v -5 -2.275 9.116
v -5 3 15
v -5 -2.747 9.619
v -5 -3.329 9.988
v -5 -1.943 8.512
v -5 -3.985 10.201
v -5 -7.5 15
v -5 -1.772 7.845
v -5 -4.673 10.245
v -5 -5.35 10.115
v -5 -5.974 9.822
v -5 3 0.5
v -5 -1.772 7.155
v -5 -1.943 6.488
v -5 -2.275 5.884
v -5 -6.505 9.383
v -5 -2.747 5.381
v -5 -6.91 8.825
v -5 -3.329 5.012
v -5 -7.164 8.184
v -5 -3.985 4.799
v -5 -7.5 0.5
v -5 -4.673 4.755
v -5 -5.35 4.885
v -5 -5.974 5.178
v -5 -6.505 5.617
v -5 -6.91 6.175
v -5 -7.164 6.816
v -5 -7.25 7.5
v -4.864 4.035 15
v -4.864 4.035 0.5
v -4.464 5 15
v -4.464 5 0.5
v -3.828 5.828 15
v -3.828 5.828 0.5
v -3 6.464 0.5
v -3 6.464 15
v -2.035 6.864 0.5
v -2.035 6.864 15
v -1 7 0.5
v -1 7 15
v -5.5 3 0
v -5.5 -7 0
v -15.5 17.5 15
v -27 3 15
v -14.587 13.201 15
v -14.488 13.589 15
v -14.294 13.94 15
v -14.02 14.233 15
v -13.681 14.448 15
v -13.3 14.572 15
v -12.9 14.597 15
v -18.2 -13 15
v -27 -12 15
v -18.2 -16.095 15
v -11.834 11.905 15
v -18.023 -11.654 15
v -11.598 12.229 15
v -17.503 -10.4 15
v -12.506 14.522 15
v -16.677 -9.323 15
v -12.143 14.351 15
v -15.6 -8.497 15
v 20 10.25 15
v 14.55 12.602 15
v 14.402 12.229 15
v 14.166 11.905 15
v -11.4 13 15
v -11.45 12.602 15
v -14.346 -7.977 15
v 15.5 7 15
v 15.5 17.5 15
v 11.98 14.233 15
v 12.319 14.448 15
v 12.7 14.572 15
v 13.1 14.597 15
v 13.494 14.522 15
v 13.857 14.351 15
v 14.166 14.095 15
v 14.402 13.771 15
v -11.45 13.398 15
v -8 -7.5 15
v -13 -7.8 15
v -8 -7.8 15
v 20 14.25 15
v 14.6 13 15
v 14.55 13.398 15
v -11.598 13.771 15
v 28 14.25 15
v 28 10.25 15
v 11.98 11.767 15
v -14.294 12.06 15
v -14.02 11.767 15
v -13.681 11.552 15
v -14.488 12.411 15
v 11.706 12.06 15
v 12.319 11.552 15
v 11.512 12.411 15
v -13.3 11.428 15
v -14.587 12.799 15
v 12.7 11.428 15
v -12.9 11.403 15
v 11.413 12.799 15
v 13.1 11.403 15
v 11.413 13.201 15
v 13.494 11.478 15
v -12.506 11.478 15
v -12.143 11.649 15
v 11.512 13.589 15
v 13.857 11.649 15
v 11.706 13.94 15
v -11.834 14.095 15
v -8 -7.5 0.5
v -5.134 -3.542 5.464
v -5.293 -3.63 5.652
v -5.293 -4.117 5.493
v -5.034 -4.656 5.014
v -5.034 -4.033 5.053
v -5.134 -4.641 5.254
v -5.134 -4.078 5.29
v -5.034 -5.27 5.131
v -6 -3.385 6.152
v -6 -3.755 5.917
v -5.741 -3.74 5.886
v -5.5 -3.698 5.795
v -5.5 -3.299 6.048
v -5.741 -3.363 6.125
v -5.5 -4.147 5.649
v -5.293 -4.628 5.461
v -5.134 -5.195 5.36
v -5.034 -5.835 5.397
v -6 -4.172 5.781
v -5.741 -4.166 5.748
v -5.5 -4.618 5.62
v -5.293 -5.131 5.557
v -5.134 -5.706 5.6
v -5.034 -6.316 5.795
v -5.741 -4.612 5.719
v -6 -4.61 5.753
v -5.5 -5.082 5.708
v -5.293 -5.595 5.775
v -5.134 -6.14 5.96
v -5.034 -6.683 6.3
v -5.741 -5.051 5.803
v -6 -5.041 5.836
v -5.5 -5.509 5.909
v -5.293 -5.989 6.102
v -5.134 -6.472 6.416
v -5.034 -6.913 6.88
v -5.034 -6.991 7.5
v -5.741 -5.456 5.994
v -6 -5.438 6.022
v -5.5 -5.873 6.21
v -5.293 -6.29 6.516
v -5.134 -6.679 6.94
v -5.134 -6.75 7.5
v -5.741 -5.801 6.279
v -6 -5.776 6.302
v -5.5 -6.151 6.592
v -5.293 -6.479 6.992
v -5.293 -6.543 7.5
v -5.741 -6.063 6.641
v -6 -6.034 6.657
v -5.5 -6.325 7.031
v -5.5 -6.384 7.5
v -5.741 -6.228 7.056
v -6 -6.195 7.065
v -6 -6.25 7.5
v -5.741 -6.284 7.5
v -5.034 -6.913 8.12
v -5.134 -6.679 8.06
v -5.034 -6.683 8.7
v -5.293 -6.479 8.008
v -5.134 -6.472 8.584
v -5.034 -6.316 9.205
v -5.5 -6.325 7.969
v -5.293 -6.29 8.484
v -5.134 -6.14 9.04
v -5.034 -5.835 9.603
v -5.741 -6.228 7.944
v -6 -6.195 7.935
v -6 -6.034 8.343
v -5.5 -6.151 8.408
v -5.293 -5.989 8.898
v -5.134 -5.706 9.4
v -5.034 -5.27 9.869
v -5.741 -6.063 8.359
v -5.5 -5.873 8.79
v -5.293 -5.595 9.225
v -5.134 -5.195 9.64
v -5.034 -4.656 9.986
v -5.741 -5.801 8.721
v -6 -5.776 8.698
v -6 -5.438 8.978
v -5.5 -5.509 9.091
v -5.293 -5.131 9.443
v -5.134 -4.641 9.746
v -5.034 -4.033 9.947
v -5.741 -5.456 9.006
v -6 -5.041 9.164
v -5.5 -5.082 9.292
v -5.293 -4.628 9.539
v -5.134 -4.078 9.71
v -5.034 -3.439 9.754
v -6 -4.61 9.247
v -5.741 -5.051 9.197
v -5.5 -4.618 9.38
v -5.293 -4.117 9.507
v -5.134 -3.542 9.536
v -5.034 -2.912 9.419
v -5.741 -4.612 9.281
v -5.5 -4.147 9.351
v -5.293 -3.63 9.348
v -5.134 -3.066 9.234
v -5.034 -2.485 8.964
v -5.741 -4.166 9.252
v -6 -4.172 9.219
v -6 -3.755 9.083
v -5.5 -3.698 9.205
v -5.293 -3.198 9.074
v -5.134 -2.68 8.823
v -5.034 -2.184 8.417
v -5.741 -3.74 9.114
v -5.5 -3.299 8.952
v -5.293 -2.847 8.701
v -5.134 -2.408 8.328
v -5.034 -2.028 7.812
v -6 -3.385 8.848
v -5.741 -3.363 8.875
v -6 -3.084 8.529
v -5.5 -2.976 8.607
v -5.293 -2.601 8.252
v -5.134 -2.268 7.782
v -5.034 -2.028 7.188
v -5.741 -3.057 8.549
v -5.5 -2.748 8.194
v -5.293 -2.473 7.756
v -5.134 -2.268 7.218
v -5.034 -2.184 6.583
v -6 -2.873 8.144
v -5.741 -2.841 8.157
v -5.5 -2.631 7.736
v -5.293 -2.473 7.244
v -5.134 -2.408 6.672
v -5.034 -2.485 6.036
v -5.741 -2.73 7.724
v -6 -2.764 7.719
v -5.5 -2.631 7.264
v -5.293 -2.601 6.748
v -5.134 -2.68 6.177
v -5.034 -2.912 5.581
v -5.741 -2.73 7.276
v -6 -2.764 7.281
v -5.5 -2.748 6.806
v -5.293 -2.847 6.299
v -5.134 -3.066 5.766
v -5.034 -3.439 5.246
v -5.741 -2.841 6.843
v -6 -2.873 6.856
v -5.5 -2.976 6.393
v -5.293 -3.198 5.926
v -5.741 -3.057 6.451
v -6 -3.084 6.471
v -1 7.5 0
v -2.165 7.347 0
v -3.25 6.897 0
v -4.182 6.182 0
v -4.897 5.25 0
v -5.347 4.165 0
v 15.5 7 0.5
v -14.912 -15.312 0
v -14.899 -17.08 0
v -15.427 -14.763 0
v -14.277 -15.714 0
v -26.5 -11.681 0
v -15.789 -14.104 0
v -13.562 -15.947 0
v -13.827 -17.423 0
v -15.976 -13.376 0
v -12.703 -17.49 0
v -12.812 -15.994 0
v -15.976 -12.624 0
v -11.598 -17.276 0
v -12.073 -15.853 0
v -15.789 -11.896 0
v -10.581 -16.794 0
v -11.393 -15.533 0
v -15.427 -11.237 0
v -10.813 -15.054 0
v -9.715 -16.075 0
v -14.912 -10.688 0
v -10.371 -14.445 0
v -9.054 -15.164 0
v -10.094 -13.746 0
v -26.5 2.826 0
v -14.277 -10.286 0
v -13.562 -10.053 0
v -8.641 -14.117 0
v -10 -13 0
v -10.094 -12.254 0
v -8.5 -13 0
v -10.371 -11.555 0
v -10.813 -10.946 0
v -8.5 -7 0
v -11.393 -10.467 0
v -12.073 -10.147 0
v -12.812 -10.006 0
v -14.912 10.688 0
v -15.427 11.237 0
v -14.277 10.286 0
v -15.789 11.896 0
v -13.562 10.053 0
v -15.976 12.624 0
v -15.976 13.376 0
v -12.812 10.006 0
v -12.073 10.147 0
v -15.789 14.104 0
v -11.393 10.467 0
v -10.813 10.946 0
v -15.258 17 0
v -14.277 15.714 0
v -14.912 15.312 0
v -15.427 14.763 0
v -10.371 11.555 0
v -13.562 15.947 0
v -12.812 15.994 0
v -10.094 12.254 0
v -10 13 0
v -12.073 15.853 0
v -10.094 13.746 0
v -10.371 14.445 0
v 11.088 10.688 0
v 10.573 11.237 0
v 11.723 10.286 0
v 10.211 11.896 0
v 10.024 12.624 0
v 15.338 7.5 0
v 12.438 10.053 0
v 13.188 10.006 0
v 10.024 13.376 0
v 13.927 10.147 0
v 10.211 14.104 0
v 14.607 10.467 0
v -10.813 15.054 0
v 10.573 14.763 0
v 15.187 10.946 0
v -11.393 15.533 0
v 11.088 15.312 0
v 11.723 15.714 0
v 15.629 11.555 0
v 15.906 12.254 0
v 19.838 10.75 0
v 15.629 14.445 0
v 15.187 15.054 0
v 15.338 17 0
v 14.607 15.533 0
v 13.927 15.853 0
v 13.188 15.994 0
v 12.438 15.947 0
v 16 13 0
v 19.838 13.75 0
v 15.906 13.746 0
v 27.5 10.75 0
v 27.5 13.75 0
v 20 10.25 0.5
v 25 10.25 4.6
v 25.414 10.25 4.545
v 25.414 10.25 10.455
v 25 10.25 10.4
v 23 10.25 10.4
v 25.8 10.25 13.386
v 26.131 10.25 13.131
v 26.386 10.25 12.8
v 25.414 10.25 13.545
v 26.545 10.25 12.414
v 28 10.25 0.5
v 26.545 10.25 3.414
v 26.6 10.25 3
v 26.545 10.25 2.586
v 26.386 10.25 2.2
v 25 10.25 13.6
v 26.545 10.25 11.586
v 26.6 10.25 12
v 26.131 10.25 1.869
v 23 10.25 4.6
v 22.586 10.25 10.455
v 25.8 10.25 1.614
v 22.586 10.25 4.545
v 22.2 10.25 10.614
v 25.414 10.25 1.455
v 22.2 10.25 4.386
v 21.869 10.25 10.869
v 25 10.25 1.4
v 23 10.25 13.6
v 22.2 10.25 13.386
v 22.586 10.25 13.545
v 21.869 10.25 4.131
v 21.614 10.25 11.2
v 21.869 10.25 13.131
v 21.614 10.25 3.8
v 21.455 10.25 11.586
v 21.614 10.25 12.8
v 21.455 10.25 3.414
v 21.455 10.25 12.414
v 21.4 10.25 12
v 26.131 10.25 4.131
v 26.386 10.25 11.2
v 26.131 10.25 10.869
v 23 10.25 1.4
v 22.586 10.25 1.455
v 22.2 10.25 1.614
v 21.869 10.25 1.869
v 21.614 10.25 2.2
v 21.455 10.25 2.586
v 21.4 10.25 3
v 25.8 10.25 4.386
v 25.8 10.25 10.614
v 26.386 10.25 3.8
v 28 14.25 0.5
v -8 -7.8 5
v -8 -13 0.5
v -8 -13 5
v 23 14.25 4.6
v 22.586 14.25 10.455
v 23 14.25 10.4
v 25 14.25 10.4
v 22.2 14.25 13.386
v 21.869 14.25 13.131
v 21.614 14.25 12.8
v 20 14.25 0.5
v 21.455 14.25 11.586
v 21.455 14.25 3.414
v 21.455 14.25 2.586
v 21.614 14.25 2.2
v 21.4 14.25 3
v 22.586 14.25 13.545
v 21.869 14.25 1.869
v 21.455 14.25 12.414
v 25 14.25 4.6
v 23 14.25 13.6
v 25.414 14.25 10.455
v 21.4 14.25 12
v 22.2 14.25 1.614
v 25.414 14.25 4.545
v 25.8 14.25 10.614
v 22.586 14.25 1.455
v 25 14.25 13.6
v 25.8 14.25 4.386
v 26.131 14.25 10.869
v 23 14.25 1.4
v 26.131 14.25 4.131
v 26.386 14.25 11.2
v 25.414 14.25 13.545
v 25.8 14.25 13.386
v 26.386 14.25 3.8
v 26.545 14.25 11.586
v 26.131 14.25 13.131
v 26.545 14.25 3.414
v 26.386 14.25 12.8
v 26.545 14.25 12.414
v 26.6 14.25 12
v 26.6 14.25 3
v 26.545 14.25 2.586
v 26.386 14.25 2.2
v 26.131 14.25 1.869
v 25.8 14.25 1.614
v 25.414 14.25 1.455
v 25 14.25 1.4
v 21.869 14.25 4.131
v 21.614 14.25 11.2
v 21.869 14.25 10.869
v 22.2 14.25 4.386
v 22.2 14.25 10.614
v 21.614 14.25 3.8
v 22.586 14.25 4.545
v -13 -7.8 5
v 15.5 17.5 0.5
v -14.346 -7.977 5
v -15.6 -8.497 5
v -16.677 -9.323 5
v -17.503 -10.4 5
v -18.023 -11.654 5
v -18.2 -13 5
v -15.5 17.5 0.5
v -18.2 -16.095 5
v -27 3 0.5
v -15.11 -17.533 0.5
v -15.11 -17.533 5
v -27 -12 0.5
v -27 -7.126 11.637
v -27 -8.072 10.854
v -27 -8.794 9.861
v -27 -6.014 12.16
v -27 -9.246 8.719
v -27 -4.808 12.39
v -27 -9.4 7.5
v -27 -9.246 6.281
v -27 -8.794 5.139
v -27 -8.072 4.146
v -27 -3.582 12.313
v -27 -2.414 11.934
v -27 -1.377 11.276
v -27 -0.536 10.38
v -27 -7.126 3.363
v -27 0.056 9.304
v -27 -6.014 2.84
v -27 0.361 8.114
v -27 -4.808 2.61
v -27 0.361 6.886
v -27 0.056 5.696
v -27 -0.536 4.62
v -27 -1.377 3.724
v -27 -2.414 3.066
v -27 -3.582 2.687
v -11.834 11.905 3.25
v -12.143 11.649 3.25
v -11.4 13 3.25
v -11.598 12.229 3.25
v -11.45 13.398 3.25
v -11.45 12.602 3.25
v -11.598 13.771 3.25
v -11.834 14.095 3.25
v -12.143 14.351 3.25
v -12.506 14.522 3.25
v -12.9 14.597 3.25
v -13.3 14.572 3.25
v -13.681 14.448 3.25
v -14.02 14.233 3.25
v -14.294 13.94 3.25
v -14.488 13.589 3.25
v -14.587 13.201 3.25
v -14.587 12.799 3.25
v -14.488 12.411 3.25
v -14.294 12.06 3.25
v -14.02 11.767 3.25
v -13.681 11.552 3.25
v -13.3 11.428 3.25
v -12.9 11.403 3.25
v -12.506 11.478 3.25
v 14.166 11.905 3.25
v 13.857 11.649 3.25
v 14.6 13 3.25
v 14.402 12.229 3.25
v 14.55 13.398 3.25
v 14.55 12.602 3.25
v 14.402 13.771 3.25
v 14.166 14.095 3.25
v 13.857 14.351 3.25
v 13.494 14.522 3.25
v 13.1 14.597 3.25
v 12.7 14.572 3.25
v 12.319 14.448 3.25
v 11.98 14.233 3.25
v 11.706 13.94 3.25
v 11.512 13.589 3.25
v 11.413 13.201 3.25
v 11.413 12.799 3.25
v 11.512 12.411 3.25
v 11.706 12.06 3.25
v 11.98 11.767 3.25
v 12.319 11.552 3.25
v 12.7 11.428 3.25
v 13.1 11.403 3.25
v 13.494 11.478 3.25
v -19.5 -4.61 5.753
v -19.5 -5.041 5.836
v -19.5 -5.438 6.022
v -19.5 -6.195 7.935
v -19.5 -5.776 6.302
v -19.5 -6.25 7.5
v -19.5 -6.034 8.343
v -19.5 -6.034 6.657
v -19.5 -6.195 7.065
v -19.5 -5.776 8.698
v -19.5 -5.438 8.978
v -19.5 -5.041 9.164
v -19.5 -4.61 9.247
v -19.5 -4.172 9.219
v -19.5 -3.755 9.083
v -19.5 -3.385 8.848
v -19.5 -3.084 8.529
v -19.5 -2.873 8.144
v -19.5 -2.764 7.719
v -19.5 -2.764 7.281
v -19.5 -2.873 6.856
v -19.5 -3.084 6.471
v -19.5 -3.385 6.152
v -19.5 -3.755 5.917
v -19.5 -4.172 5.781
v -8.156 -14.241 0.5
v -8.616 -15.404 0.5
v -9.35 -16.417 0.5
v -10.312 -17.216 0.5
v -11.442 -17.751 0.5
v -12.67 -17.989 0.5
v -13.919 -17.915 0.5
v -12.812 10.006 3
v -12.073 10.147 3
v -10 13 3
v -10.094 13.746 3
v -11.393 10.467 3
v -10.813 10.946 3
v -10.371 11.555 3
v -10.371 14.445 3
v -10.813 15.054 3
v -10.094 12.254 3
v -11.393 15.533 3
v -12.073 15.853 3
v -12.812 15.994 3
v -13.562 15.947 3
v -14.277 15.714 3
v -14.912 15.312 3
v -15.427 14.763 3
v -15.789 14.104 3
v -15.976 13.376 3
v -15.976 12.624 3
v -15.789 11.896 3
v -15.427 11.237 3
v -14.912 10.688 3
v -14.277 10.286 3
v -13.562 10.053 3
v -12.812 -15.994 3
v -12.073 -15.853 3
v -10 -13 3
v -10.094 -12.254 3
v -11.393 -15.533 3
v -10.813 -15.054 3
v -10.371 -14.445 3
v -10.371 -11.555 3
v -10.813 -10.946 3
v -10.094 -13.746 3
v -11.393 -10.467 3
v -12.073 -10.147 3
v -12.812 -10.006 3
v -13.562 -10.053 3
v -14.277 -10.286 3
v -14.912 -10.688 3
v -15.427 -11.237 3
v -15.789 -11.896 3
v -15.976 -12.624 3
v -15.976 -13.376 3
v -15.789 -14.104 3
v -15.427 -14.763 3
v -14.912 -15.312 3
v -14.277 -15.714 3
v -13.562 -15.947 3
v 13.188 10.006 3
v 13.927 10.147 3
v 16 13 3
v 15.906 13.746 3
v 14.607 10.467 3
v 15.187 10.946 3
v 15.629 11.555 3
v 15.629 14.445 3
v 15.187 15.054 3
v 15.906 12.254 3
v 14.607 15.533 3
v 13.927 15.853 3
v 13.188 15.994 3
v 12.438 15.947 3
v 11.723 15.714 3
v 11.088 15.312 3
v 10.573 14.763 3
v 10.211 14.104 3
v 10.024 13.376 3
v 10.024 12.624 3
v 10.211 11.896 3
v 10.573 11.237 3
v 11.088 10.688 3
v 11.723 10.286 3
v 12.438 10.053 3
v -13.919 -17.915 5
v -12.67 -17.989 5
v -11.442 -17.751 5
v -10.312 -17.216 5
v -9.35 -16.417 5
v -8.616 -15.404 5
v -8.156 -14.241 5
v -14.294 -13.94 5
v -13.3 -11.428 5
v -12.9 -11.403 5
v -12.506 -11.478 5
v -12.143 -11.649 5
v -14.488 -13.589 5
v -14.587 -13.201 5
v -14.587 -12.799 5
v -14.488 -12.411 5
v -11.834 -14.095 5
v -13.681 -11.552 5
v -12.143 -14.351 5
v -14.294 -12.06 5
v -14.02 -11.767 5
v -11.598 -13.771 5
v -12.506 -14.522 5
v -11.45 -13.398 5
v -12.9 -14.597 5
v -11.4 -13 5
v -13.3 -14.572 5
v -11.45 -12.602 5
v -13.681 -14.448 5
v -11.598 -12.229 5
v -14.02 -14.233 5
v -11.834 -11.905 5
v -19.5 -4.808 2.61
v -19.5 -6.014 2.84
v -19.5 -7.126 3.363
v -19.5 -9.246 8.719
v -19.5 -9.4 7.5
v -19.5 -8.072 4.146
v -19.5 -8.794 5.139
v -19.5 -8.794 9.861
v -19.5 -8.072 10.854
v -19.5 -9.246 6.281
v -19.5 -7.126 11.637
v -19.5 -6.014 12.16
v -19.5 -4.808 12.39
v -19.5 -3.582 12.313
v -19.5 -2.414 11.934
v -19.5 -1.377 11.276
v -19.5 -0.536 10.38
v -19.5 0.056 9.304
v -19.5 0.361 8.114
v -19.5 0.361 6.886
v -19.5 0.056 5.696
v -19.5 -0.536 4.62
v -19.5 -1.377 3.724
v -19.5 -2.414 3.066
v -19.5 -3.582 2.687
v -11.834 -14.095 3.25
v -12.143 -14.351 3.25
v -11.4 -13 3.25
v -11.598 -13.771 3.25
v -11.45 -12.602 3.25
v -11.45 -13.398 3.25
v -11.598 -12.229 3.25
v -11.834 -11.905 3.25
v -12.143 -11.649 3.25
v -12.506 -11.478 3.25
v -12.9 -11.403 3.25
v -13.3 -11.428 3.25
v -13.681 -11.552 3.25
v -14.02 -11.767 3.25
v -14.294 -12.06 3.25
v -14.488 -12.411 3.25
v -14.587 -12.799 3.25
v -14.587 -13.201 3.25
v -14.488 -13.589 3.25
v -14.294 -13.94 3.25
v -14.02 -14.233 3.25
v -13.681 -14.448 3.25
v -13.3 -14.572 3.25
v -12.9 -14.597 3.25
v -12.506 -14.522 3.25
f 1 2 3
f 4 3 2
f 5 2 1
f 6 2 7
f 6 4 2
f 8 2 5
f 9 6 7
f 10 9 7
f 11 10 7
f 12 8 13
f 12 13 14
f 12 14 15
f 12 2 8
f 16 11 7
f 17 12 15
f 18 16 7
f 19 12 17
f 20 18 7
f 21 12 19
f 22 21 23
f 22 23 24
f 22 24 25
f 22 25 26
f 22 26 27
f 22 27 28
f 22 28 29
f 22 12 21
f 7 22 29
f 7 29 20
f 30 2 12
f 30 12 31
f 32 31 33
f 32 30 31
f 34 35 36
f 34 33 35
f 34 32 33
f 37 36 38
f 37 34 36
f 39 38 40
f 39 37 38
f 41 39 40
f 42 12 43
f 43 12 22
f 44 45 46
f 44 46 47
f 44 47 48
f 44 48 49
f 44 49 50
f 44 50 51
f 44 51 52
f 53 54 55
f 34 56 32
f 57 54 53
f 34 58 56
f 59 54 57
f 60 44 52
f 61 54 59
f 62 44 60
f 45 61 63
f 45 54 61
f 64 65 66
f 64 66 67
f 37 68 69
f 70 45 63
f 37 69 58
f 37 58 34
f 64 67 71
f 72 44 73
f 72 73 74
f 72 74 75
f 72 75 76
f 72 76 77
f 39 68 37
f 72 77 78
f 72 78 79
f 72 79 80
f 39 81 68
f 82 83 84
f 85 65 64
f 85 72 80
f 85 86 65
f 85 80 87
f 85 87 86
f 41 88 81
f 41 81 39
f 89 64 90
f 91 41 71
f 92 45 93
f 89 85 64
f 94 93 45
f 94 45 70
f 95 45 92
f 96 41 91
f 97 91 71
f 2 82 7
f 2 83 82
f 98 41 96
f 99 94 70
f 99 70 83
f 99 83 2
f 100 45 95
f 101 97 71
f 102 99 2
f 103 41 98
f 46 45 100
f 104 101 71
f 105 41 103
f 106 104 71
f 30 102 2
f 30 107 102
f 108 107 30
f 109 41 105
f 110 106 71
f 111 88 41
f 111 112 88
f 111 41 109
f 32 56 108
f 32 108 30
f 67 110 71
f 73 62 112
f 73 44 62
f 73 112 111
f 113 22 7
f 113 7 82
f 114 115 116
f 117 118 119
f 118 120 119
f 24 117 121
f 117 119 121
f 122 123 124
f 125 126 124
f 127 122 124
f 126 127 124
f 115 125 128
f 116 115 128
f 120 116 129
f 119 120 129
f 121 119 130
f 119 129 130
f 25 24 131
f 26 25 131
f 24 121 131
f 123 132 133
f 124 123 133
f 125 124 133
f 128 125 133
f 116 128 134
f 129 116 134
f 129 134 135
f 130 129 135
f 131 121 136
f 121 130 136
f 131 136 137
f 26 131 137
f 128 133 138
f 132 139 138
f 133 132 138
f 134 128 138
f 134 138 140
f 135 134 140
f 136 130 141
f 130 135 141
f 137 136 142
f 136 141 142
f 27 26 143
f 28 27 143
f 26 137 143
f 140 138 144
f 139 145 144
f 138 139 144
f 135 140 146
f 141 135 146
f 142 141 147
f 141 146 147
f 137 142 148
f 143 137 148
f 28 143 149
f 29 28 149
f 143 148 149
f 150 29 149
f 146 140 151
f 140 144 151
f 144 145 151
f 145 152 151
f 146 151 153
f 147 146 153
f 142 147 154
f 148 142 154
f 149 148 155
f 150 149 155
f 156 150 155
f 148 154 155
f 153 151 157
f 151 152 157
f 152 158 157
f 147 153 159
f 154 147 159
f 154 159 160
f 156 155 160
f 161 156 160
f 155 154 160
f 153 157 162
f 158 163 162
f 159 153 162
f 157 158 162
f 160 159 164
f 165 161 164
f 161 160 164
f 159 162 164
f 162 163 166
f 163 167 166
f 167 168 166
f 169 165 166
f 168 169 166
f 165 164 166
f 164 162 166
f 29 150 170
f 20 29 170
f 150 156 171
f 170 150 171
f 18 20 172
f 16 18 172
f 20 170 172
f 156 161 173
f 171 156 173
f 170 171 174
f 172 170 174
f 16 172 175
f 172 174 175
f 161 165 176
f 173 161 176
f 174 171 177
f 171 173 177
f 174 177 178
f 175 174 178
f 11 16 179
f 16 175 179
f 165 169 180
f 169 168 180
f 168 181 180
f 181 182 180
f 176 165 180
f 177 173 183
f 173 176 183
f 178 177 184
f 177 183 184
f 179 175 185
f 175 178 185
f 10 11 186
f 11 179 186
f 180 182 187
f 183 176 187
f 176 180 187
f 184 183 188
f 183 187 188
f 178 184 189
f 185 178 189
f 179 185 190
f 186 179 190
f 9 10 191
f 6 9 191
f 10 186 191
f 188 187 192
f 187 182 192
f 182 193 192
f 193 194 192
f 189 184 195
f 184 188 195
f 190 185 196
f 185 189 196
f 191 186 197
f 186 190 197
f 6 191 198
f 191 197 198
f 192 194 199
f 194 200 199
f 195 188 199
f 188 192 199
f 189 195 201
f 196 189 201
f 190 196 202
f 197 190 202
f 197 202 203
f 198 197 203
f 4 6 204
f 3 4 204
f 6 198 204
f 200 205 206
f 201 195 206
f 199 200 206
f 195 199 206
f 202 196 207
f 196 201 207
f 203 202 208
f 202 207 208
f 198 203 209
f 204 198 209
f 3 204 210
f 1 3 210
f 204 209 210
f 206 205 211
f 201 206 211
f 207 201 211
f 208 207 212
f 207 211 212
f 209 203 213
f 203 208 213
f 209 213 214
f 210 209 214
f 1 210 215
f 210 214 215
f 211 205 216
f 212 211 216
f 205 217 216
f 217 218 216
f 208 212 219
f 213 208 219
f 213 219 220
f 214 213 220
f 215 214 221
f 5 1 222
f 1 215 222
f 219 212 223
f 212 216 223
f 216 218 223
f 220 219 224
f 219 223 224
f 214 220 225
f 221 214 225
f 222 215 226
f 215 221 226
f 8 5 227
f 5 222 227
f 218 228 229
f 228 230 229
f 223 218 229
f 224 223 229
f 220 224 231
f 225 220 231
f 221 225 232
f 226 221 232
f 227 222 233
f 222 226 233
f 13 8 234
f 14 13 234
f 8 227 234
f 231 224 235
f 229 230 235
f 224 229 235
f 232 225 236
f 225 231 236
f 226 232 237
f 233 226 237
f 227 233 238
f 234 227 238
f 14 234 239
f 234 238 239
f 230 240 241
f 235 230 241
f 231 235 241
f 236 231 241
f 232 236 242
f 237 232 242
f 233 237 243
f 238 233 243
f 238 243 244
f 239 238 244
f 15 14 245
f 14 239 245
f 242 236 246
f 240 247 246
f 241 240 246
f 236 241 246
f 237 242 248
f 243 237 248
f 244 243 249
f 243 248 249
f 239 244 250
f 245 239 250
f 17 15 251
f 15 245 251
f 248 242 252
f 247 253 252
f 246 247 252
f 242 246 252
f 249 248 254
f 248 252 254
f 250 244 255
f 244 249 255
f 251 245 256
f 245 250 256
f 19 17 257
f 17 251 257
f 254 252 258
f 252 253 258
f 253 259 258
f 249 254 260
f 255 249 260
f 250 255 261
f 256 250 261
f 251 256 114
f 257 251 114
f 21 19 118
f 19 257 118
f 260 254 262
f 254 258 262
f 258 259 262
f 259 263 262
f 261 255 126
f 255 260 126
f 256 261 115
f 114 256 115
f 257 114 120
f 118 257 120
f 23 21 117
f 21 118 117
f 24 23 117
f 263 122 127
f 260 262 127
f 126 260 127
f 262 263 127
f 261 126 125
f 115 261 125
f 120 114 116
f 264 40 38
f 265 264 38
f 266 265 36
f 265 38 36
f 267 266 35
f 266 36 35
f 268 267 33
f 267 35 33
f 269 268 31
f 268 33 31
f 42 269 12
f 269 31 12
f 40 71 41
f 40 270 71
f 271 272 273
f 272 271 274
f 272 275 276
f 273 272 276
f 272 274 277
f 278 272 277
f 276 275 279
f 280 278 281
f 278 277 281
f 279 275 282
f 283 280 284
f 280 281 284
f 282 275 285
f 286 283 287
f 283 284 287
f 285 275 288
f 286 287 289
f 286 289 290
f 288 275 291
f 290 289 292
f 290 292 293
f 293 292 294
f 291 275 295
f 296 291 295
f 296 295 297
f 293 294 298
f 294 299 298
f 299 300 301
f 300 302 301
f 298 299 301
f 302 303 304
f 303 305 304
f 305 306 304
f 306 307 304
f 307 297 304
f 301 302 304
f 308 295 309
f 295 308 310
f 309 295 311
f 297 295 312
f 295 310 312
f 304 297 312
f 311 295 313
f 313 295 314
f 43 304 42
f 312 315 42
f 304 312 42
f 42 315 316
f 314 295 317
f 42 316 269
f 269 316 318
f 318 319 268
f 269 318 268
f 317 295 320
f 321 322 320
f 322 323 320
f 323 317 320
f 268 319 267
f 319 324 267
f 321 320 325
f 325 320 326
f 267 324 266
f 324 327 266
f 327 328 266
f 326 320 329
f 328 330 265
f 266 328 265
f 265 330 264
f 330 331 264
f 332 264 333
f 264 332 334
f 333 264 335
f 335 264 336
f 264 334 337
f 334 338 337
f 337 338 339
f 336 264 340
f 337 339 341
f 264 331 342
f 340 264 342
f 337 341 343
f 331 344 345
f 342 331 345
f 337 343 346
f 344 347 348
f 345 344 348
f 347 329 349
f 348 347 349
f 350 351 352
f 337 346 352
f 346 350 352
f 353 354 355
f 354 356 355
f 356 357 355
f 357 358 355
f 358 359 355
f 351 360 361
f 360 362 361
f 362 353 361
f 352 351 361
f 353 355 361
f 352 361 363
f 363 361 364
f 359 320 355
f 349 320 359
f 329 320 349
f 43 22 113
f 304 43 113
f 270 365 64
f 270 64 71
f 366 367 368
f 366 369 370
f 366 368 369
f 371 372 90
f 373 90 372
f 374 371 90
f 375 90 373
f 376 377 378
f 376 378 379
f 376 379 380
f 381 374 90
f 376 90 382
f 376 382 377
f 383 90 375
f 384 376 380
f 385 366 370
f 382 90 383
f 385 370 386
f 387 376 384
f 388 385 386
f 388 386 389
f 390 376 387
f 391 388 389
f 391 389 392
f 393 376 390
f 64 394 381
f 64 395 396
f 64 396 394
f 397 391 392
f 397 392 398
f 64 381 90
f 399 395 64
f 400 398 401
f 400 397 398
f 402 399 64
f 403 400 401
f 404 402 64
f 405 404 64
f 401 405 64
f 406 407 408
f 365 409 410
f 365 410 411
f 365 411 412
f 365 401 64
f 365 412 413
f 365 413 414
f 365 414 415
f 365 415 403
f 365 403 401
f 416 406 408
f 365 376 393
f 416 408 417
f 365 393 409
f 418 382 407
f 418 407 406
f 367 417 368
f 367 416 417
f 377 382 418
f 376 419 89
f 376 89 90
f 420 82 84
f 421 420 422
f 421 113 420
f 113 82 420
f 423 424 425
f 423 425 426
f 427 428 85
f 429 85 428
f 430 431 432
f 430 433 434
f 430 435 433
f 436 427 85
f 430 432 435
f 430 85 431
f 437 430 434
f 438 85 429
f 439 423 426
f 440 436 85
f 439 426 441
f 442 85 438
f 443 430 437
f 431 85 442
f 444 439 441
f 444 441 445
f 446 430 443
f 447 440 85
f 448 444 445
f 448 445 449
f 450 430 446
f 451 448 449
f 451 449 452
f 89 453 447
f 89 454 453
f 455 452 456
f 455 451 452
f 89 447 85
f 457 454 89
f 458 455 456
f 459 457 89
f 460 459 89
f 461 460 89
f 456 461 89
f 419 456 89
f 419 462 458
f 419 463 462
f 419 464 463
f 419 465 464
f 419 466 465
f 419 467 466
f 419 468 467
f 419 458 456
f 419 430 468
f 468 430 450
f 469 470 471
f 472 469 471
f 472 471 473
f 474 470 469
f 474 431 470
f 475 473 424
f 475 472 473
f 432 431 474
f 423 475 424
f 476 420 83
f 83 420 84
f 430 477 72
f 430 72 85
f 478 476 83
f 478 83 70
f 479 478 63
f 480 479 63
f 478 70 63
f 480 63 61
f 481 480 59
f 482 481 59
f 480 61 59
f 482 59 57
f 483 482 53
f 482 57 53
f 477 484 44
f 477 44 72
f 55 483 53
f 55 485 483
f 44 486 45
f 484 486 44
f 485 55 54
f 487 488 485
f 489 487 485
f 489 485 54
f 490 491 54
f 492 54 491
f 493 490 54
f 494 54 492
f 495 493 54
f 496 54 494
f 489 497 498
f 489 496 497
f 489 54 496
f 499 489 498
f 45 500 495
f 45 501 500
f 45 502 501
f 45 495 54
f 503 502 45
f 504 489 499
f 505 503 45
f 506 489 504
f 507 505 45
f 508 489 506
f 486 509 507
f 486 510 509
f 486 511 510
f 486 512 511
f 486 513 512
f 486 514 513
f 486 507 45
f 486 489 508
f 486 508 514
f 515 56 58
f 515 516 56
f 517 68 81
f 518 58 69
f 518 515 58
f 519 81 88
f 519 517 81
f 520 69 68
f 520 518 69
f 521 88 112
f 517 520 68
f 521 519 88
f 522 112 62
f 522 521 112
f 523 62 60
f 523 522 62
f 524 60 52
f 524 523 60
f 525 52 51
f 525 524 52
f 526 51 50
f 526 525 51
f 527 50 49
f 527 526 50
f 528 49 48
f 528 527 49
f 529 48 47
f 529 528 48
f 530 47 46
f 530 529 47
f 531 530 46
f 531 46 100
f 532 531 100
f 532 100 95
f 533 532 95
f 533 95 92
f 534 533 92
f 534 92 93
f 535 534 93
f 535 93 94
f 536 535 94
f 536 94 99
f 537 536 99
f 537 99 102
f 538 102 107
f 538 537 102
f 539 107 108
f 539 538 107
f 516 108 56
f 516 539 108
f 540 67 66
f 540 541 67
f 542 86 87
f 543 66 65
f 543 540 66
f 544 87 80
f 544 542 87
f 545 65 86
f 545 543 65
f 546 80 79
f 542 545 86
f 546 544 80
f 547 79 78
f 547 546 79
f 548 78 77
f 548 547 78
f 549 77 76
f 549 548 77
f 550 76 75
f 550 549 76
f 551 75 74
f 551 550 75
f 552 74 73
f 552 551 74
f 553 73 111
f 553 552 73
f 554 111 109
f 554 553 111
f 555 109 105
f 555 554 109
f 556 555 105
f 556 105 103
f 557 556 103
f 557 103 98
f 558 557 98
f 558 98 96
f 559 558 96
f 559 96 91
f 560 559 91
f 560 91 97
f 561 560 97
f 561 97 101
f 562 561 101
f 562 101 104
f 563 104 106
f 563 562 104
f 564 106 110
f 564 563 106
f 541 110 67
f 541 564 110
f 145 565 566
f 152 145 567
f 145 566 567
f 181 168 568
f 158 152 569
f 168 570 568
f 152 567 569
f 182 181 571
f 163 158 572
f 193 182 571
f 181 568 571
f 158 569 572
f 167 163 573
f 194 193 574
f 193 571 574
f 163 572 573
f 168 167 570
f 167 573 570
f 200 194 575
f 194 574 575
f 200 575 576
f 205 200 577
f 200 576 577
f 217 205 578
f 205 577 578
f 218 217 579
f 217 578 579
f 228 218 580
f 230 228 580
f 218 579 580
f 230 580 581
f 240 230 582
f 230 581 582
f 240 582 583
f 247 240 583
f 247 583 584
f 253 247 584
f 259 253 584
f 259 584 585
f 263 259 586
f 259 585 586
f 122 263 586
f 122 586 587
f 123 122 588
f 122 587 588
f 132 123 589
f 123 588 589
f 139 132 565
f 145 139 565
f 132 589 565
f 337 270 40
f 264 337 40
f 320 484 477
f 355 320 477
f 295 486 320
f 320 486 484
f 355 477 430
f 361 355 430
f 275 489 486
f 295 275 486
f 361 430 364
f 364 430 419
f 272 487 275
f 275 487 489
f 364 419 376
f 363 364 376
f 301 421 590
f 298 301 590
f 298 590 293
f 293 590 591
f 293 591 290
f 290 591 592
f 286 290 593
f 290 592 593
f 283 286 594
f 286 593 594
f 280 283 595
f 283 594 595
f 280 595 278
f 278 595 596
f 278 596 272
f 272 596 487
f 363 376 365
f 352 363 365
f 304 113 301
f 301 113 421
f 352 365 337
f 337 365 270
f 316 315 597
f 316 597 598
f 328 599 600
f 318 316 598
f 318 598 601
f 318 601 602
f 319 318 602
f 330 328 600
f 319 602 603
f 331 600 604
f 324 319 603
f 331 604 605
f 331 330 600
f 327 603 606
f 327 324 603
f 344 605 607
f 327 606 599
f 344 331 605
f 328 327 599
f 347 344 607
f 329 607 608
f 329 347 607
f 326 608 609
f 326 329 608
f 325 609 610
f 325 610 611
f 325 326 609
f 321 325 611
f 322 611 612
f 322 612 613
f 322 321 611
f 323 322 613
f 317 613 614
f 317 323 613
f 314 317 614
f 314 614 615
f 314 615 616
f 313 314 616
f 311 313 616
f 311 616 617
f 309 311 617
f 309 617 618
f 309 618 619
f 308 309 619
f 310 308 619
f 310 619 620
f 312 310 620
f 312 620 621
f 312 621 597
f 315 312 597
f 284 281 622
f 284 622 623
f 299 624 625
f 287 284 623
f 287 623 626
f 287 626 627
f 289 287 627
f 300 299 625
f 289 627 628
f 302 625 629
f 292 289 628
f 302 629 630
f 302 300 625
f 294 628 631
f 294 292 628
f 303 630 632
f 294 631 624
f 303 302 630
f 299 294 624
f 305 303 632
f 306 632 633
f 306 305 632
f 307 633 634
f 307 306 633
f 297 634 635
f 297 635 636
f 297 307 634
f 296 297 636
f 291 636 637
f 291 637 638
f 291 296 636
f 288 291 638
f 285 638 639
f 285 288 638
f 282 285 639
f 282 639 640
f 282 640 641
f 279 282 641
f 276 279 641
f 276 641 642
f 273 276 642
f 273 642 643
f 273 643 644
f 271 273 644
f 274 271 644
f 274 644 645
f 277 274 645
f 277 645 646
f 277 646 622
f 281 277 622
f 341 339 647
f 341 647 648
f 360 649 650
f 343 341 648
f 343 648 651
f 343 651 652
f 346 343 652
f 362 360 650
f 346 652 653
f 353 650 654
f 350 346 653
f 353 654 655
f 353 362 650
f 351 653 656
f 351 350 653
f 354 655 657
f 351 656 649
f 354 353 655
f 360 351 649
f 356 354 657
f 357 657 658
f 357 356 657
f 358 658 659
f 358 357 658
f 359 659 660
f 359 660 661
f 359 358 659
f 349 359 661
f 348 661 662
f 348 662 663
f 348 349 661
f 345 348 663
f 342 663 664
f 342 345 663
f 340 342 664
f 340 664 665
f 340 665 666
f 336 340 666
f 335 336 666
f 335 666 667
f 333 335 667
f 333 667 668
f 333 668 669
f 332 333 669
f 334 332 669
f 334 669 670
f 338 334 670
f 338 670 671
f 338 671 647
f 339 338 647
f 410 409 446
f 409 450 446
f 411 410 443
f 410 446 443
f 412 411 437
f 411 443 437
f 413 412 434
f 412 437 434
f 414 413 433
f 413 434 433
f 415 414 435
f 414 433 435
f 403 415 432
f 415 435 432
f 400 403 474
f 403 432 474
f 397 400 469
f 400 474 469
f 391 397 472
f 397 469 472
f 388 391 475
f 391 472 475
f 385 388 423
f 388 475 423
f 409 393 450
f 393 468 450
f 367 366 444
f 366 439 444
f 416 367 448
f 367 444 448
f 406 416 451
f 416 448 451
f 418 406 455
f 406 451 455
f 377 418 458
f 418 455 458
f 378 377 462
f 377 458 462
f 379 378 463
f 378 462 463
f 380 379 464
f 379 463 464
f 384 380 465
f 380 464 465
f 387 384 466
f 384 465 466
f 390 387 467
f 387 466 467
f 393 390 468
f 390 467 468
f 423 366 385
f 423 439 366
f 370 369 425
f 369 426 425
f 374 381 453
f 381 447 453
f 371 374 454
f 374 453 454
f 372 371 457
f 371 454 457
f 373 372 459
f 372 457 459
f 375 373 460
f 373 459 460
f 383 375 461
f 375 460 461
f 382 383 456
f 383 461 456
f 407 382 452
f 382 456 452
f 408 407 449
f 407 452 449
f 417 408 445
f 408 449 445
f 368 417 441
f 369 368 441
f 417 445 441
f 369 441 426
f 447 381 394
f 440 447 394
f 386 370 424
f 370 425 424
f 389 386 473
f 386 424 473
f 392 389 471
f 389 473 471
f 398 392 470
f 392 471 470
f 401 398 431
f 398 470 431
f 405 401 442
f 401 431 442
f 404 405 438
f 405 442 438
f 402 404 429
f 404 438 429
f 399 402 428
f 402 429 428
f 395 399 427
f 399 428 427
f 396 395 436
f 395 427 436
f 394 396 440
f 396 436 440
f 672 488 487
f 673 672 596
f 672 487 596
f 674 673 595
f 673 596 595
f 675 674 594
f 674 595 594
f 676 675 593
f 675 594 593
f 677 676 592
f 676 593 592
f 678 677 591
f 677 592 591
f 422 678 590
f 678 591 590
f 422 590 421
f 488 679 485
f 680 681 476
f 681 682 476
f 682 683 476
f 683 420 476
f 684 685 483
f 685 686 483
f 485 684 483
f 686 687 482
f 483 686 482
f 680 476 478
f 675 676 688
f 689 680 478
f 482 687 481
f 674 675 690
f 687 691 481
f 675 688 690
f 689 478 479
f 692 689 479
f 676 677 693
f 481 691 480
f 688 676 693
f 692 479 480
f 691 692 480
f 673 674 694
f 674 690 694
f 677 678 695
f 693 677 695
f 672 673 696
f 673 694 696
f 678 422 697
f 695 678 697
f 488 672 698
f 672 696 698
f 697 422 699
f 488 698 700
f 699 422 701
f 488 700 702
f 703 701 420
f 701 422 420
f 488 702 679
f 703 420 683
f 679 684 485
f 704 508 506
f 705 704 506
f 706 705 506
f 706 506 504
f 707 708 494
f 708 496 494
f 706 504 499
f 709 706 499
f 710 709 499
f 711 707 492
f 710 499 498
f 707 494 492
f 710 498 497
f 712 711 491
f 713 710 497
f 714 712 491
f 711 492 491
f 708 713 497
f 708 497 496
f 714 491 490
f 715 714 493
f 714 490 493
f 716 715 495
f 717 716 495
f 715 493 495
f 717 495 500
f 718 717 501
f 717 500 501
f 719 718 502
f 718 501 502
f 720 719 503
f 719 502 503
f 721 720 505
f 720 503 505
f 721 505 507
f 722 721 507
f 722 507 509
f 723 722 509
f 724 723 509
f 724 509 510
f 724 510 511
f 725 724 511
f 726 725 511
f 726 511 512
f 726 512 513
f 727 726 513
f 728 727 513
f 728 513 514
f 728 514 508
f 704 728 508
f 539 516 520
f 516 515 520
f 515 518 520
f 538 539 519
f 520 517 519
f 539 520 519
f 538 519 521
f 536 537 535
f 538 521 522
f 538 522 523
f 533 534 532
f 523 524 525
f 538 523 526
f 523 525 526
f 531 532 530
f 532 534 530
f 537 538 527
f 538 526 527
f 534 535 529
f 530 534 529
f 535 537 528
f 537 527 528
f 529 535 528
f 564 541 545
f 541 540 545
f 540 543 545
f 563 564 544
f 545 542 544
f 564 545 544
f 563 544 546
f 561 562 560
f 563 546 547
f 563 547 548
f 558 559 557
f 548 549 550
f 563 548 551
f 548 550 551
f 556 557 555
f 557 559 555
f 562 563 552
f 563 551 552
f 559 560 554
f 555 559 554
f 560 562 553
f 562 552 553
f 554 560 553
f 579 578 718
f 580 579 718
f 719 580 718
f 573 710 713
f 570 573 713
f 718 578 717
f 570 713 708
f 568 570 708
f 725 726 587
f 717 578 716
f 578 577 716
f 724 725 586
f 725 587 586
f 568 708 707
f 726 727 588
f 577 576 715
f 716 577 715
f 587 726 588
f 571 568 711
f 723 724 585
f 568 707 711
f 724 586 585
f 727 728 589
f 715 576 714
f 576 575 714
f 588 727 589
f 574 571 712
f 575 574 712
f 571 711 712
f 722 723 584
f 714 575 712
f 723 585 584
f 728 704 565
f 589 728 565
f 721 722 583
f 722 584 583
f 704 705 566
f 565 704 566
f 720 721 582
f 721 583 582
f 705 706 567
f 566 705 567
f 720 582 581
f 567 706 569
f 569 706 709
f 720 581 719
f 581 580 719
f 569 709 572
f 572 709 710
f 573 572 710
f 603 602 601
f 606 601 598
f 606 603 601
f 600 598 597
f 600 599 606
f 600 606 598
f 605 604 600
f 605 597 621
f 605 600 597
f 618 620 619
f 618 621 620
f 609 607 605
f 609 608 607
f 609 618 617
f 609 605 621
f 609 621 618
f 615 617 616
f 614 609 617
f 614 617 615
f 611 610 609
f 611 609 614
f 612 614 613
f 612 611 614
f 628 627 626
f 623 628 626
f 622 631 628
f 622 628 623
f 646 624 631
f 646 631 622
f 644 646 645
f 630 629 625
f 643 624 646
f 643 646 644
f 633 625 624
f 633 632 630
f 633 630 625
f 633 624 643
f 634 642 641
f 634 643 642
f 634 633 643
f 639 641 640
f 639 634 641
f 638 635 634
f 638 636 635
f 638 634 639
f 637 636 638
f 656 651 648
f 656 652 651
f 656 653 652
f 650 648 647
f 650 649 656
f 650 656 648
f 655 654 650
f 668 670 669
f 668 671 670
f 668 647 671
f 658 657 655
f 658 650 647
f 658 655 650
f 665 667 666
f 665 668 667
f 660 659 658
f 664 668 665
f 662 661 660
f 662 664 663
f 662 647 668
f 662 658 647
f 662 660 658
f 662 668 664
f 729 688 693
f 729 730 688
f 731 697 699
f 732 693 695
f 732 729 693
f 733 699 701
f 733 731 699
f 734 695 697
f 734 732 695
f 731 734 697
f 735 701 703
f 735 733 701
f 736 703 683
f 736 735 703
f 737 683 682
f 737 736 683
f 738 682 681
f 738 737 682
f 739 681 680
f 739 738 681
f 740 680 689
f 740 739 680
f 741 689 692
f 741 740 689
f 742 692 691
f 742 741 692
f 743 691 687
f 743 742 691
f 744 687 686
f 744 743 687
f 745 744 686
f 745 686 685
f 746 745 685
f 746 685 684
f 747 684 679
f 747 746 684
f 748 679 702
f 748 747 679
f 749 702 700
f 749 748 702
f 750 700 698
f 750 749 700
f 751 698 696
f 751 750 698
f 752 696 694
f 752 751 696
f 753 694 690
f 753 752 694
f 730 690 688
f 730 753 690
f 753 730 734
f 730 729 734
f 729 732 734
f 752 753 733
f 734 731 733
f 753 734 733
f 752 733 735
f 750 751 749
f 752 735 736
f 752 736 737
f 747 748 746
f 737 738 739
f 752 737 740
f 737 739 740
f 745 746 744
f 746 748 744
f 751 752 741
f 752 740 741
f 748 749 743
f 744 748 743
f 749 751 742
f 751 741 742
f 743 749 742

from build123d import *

# Parameters (mm, degrees)
BOX_W           = 10.4
BOX_H           = 10.4
BOX_DEPTH       = 10
CYLINDER_R      = 5.2
CYLINDER_DEPTH  = 10
BOX001_W        = 10.4
BOX001_H        = 10
BOX001_DEPTH    = 10
SKETCH001_R     = 1.6
PAD_DEPTH       = 20
SKETCH_R        = 3
PAD001_DEPTH    = 3
PAD002_DEPTH    = 15
SKETCH003_R     = 4.9
POCKET_DEPTH    = 7.5
SKETCH004_R     = 1.75
POCKET001_DEPTH = 47.501
POCKET002_DEPTH = 5
FILLET_R        = 4
FILLET001_R     = 1
CHAMFER_SIZE    = 0.5


with BuildPart() as cube:
    # Box → Box (new body)
    with BuildSketch(Plane(origin=(-13, -18.2, 5), x_dir=(1, 0, 0), z_dir=(0, 0, 1))):
        with Locations((5.2, 5.2)):
            Rectangle(BOX_W, BOX_H)
    extrude(amount=BOX_DEPTH)


with BuildPart() as cylinder:
    # Cylinder → Cylinder (new body)
    with BuildSketch(Plane(origin=(-13, -13, 5), x_dir=(1, 0, 0), z_dir=(0, 0, 1))):
        Circle(CYLINDER_R)
    extrude(amount=CYLINDER_DEPTH)


with BuildPart() as bisagra:
    # Box001 → Box001 (new body)
    with BuildSketch(Plane(origin=(-18.2, -23, 5), x_dir=(1, 0, 0), z_dir=(0, 0, 1))):
        with Locations((5.2, 5)):
            Rectangle(BOX001_W, BOX001_H)
    extrude(amount=BOX001_DEPTH)

    # Fusion001: union Cube, Cylinder
    add(cube.part)
    add(cylinder.part)


with BuildPart() as cuerpo_tornillos:
    # Sketch001 → Pad (new body)
    with BuildSketch(Plane.XY.offset(3.25)):
        with Locations((-13, 13)):
            Circle(SKETCH001_R)
        with Locations((13, 13)):
            Circle(SKETCH001_R)
        with Locations((-13, -13)):
            Circle(SKETCH001_R)
    extrude(amount=PAD_DEPTH)


with BuildPart() as tornillos:
    # Sketch → Pad001 (new body)
    with BuildSketch(Plane.XY):
        with Locations((-13, 13)):
            Circle(SKETCH_R)
        with Locations((13, 13)):
            Circle(SKETCH_R)
        with Locations((-13, -13)):
            Circle(SKETCH_R)
    extrude(amount=PAD001_DEPTH)

    # Fusion: union cuerpo_tornillos
    add(cuerpo_tornillos.part)


with BuildPart() as chamfer_body:
    # Sketch002 → Pad002 (new body)
    with BuildSketch(Plane.XY):
        with BuildLine():
            Line((-15.109533, -17.533197), (-27, -12))
            Line((-27, -12), (-27, 3))
            Line((-27, 3), (-15.5, 17.5))
            Line((-15.5, 17.5), (15.5, 17.5))
            Line((15.5, 17.5), (20, 14.25))
            Line((20, 14.25), (28, 14.25))
            Line((28, 14.25), (28, 10.25))
            Line((28, 10.25), (20, 10.25))
            Line((20, 10.25), (15.5, 7))
            Line((15.5, 7), (-5, 7))
            Line((-5, 7), (-5, -7.5))
            Line((-5, -7.5), (-8, -7.5))
            Line((-8, -7.5), (-8, -13))
            ThreePointArc((-15.109533, -17.533197), (-10.311847, -17.215902), (-8, -13))
        make_face()
    extrude(amount=PAD002_DEPTH)

    # Sketch003 → Pocket (cut)
    with BuildSketch(Plane(origin=(-27, 0, 0), x_dir=(0, -1, 0), z_dir=(-1, 0, 0))):
        with Locations((4.5, 7.5)):
            Circle(SKETCH003_R)
    extrude(amount=-POCKET_DEPTH, mode=Mode.SUBTRACT)

    # Sketch004 → Pocket001 (cut, through all)
    with BuildSketch(Plane(origin=(-19.5, 0, 0), x_dir=(0, -1, 0), z_dir=(-1, 0, 0))):
        with Locations((4.5, 7.5)):
            Circle(SKETCH004_R)
    extrude(amount=-POCKET001_DEPTH, mode=Mode.SUBTRACT)

    # Sketch005 → Pocket002 (cut)
    with BuildSketch(Plane(origin=(0, 14.25, 0), x_dir=(-1, 0, 0), z_dir=(0, 1, 0))):
        with BuildLine():
            ThreePointArc((-25, 13.6), (-26.6, 12), (-25, 10.4))
            Line((-25, 10.4), (-23, 10.4))
            ThreePointArc((-23, 10.4), (-21.4, 12), (-23, 13.6))
            Line((-25, 13.6), (-23, 13.6))
        make_face()
        with BuildLine():
            ThreePointArc((-25, 4.6), (-26.6, 3), (-25, 1.4))
            Line((-25, 1.4), (-23, 1.4))
            ThreePointArc((-23, 1.4), (-21.4, 3), (-23, 4.6))
            Line((-25, 4.6), (-23, 4.6))
        make_face()
    extrude(amount=-POCKET002_DEPTH, mode=Mode.SUBTRACT)

    # Cut: cut tornillos
    add(tornillos.part, mode=Mode.SUBTRACT)

    # Cut001: cut bisagra
    add(bisagra.part, mode=Mode.SUBTRACT)

    # Fillet
    fillet_edges = [chamfer_body.edges().sort_by_distance(p)[0] for p in [
        (-5, 7, 7.5),
    ]]
    fillet(fillet_edges, radius=FILLET_R)

    # Fillet001
    fillet001_edges = [chamfer_body.edges().sort_by_distance(p)[0] for p in [
        (-5, -2.75, 7.5),
    ]]
    fillet(fillet001_edges, radius=FILLET001_R)

    # Chamfer
    chamfer_edges = [chamfer_body.edges().sort_by_distance(p)[0] for p in [
        (0, 17.5, 0),
        (-21.25, 10.25, 0),
        (-27, -4.5, 0),
        (-21.054766, -14.766598, 0),
        (-10.311847, -17.215902, 0),
        (-8, -10.25, 0),
        (-6.5, -7.5, 0),
        (-5, -2.25, 0),
        (-3.828427, 5.828427, 0),
        (7.25, 7, 0),
        (17.75, 8.625, 0),
        (24, 10.25, 0),
        (28, 12.25, 0),
        (24, 14.25, 0),
        (17.75, 15.875, 0),
    ]]
    chamfer(chamfer_edges, length=CHAMFER_SIZE)


solid = chamfer_body.part
